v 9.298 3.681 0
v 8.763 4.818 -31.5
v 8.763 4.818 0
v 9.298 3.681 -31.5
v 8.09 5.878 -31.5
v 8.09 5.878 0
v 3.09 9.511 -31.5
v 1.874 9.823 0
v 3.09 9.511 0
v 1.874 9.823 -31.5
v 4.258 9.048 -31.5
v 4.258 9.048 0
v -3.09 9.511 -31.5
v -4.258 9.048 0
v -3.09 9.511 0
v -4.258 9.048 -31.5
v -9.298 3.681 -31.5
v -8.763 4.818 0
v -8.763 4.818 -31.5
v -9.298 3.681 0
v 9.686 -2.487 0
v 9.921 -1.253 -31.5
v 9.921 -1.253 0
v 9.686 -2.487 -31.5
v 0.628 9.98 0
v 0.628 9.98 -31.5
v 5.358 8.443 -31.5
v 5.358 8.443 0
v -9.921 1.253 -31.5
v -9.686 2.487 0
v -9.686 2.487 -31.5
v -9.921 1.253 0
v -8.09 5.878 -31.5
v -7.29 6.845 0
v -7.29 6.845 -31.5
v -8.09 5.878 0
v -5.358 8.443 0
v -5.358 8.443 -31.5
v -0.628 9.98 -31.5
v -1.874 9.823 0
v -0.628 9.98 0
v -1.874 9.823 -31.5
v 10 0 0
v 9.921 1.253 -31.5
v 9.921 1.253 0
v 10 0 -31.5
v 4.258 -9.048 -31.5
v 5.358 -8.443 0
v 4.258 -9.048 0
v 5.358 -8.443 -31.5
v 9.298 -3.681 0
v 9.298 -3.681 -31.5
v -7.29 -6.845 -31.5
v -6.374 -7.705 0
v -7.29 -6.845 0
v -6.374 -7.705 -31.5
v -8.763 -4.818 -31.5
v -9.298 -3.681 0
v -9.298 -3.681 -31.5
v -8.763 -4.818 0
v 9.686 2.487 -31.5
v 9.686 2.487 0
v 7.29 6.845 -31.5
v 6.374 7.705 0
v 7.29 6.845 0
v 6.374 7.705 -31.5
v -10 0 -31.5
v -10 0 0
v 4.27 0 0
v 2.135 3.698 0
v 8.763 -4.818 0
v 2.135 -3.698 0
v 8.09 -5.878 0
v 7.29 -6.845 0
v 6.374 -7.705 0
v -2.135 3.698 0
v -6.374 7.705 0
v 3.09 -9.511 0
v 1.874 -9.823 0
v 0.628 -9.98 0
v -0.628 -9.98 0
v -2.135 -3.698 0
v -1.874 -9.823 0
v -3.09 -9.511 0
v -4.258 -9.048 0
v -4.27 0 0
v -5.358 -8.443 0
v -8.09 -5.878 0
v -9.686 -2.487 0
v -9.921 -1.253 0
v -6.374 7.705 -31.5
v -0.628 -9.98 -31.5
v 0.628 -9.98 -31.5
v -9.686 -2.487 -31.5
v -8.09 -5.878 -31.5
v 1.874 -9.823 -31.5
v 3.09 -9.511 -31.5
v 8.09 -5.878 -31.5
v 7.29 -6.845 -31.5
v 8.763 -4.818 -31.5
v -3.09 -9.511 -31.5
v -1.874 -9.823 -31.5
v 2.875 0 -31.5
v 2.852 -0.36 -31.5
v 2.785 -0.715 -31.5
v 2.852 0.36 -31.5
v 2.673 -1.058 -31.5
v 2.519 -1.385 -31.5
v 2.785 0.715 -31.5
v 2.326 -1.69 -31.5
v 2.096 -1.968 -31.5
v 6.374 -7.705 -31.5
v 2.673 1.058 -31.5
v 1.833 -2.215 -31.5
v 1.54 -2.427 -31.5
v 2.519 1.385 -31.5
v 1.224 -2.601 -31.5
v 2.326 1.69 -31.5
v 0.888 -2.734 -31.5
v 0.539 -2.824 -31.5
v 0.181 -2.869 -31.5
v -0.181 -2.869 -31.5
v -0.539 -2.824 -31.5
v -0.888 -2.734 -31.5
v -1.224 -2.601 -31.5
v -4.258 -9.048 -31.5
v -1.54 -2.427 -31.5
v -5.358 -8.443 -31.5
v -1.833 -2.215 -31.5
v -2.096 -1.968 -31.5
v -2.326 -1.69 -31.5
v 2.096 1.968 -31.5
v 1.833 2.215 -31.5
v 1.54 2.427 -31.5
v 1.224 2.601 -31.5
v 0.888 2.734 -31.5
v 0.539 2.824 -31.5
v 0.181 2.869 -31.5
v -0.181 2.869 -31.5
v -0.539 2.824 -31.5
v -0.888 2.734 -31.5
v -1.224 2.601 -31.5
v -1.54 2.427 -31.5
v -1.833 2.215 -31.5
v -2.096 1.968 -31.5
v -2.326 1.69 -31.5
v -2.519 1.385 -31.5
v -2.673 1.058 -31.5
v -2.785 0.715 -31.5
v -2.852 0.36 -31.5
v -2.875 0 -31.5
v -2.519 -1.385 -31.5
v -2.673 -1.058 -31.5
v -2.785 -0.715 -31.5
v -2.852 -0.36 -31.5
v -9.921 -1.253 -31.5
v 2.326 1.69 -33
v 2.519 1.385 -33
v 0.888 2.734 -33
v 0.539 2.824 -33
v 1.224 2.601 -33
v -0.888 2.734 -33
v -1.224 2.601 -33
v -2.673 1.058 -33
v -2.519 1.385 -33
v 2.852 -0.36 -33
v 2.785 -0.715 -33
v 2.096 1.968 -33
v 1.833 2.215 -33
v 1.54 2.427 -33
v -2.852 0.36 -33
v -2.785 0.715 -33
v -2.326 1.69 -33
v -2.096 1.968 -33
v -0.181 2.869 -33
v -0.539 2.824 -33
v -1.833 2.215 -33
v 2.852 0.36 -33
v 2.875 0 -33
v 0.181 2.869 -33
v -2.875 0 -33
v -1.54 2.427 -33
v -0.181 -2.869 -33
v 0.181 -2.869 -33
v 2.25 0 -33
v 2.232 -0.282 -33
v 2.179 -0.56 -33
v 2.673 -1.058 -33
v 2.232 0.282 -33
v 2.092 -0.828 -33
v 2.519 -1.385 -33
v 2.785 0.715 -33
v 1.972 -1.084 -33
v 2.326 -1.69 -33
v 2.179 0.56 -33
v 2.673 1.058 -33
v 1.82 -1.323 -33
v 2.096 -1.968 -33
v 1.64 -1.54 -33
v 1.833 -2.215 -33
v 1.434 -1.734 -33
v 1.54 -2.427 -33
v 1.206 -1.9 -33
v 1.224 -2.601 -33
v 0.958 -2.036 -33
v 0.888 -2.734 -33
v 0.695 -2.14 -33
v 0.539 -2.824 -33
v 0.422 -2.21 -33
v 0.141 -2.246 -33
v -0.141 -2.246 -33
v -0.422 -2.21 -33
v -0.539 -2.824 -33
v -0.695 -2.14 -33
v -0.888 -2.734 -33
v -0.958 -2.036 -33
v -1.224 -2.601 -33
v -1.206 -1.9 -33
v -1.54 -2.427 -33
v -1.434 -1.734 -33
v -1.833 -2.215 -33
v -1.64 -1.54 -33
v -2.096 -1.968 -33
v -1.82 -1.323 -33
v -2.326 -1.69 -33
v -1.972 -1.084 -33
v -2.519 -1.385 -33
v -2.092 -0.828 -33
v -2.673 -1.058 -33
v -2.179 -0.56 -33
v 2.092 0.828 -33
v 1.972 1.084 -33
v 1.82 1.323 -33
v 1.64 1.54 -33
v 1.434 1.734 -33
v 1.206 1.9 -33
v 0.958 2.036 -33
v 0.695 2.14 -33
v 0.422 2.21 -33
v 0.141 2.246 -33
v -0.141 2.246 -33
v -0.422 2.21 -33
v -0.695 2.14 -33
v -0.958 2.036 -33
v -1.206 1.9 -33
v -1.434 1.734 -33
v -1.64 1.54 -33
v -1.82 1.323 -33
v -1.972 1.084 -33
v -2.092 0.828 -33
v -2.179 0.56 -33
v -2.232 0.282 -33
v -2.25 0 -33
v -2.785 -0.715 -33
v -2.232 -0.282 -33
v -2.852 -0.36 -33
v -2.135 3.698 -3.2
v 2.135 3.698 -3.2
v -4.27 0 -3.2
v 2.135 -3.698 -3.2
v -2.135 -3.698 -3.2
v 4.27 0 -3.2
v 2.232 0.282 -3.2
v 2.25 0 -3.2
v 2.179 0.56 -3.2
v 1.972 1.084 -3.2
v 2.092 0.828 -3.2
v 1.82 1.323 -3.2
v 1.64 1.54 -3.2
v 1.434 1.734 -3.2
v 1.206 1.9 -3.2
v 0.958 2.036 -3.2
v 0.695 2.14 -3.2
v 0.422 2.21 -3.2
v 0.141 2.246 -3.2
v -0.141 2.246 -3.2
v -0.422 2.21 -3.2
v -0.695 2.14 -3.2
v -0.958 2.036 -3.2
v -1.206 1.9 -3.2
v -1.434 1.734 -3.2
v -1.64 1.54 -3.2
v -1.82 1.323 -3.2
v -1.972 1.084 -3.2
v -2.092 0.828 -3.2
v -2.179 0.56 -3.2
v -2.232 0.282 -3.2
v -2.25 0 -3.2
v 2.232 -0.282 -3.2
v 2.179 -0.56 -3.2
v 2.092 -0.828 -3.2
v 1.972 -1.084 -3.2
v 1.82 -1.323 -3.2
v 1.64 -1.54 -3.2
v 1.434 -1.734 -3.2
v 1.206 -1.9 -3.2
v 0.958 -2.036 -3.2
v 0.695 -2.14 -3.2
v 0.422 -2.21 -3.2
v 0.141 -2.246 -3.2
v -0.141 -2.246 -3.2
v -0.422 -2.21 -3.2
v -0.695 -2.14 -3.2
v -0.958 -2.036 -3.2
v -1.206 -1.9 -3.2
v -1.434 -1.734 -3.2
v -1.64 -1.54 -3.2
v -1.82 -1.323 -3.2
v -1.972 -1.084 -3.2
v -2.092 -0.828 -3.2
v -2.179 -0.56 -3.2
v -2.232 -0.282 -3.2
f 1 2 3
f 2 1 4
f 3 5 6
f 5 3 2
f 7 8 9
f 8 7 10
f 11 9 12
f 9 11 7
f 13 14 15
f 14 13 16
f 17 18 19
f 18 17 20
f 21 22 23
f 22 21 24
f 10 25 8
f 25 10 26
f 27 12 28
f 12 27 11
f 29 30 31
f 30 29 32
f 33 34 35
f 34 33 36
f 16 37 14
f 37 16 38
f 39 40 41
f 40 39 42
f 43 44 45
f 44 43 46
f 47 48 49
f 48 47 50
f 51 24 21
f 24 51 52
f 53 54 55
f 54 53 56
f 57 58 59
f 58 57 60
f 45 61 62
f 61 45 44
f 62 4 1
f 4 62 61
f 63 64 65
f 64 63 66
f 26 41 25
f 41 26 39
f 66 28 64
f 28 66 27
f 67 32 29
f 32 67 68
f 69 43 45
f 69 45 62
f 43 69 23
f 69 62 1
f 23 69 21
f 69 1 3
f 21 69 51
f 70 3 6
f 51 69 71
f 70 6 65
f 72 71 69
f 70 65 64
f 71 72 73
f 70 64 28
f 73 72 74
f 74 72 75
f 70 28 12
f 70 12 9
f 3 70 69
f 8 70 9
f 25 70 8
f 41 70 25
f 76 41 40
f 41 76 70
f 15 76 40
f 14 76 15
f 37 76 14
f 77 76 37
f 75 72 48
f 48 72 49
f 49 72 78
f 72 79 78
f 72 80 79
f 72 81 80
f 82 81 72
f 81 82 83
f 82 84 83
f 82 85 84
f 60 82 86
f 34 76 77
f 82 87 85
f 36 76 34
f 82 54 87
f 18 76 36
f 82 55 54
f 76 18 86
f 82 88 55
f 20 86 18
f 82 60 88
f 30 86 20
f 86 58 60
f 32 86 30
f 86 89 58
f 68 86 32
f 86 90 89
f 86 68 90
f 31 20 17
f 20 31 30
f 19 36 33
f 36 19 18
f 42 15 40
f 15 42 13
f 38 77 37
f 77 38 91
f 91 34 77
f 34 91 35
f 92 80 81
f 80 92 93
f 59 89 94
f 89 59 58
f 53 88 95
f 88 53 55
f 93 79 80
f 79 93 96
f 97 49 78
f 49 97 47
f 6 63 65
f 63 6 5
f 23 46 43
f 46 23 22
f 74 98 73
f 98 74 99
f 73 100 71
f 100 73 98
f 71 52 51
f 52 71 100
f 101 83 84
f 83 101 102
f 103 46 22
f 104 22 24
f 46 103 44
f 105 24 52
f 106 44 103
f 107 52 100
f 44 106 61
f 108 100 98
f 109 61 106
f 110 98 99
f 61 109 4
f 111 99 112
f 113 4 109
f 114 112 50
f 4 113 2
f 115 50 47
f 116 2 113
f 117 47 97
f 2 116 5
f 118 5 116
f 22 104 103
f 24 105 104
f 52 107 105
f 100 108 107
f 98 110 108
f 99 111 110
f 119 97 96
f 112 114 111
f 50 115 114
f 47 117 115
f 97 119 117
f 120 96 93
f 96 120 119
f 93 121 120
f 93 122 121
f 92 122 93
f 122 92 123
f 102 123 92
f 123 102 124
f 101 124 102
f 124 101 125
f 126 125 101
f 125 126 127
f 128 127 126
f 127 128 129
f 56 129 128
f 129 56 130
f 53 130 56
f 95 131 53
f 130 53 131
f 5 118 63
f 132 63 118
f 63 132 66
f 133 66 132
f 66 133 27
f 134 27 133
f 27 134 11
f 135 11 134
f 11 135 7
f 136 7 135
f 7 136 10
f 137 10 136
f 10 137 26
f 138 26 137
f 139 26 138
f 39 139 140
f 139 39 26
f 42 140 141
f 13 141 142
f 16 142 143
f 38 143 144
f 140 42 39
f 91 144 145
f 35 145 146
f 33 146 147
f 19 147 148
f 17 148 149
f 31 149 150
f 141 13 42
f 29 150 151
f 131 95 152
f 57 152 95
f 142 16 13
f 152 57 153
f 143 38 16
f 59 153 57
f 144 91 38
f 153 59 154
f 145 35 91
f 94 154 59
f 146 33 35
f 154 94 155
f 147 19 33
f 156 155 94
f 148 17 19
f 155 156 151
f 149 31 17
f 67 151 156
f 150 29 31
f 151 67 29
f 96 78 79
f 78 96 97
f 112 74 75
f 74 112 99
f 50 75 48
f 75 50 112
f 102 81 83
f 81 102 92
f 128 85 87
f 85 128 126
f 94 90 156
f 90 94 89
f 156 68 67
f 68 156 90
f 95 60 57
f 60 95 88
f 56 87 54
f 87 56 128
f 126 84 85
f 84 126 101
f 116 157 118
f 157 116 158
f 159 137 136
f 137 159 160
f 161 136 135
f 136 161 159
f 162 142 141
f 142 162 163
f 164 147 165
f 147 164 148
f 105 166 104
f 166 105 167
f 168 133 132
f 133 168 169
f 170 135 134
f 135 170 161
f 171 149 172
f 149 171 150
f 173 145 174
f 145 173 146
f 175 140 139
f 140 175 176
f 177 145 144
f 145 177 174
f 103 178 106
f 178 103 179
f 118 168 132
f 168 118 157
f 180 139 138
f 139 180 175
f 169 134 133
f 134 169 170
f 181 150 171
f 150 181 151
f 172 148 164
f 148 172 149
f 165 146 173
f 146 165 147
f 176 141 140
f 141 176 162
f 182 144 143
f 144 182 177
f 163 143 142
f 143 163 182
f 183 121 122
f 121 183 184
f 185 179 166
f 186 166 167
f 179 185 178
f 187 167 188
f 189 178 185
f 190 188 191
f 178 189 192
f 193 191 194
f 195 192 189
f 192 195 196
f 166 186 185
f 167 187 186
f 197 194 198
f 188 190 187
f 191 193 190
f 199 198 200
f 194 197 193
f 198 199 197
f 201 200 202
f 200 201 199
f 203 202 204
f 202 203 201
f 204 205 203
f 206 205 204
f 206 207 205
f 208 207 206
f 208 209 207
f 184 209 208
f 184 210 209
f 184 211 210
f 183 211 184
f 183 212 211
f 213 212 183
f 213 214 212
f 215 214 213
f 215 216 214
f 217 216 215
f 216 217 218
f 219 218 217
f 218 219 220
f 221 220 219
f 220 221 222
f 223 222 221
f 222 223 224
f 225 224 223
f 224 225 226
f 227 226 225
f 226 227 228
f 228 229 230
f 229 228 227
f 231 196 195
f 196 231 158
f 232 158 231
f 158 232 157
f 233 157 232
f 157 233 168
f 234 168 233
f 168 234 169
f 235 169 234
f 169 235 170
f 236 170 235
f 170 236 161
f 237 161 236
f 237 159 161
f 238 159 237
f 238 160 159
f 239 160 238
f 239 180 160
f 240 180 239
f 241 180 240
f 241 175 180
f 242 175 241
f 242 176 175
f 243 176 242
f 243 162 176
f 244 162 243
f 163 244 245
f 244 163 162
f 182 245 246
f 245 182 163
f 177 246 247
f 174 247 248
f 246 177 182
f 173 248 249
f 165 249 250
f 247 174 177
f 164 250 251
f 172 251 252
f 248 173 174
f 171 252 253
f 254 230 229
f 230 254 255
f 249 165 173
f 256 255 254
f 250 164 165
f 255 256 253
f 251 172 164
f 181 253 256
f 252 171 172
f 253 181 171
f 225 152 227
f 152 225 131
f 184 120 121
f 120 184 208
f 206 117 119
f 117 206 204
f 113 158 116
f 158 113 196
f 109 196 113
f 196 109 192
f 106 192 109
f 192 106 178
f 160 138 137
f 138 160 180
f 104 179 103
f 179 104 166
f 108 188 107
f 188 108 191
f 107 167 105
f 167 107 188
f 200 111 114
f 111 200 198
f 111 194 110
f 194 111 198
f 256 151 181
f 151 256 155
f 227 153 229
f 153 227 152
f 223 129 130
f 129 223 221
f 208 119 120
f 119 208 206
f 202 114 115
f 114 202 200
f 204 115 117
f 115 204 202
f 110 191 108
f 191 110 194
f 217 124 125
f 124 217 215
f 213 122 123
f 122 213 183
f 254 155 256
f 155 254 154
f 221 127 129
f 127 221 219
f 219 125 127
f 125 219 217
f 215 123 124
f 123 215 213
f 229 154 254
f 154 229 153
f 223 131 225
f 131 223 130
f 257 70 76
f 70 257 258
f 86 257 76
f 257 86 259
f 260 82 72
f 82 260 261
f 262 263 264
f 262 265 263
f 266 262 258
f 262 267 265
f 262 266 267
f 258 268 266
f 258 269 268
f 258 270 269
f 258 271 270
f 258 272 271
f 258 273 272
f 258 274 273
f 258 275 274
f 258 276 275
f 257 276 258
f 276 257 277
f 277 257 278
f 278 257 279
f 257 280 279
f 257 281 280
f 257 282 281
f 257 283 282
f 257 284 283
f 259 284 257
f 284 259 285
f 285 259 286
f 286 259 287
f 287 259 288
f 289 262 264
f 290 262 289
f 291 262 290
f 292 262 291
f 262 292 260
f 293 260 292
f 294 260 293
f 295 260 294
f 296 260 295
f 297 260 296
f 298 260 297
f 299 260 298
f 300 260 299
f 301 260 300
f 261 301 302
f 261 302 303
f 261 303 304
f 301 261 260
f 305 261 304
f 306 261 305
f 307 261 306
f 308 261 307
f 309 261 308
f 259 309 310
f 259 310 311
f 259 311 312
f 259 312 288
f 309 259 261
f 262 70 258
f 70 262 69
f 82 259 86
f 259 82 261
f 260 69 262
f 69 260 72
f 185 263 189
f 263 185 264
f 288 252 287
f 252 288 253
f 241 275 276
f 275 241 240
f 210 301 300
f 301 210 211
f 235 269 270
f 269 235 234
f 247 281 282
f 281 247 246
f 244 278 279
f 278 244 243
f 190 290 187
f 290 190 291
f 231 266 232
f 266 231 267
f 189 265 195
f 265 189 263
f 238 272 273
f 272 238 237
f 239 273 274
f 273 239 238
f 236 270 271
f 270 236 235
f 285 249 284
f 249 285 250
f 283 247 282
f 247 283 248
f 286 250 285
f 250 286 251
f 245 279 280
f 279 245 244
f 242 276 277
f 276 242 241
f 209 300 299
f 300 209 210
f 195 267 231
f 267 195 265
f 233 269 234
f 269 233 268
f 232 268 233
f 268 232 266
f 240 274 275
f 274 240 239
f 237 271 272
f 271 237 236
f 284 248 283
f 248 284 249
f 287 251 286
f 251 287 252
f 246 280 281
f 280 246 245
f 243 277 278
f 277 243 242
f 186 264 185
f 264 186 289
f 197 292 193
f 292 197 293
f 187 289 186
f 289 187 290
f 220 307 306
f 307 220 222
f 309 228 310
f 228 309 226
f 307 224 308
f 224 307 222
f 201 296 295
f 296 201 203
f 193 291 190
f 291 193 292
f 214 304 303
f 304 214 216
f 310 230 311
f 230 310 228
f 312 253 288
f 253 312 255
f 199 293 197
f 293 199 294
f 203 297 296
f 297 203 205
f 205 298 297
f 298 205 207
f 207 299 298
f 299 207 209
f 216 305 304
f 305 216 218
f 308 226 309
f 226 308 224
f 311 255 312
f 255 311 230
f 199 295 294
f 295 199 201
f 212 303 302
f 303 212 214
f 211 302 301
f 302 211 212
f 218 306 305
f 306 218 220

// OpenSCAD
$fn = 50;


difference() {
	union() {
		translate(v = [0, 0, -31.5000000000]) {
			cylinder(h = 31.5000000000, r = 10.0000000000);
		}
		#translate(v = [0, 0, -33.0000000000]) {
			cylinder(h = 33, r = 2.8750000000);
		}
	}
	union() {
		translate(v = [0, 0, 0]) {
			rotate(a = [0, 0, 0]) {
				difference() {
					union() {
						translate(v = [0, 0, -3.2000000000]) {
							linear_extrude(height = 3.2000000000) {
								polygon(points = [[4.2698000000, 0.0000000000], [2.1349000000, 3.6977552691], [-2.1349000000, 3.6977552691], [-4.2698000000, 0.0000000000], [-2.1349000000, -3.6977552691], [2.1349000000, -3.6977552691]]);
							}
						}
					}
					union();
				}
			}
		}
		#translate(v = [0, 0, -100.0000000000]) {
			cylinder(h = 200, r = 2.2500000000);
		}
	}
}
